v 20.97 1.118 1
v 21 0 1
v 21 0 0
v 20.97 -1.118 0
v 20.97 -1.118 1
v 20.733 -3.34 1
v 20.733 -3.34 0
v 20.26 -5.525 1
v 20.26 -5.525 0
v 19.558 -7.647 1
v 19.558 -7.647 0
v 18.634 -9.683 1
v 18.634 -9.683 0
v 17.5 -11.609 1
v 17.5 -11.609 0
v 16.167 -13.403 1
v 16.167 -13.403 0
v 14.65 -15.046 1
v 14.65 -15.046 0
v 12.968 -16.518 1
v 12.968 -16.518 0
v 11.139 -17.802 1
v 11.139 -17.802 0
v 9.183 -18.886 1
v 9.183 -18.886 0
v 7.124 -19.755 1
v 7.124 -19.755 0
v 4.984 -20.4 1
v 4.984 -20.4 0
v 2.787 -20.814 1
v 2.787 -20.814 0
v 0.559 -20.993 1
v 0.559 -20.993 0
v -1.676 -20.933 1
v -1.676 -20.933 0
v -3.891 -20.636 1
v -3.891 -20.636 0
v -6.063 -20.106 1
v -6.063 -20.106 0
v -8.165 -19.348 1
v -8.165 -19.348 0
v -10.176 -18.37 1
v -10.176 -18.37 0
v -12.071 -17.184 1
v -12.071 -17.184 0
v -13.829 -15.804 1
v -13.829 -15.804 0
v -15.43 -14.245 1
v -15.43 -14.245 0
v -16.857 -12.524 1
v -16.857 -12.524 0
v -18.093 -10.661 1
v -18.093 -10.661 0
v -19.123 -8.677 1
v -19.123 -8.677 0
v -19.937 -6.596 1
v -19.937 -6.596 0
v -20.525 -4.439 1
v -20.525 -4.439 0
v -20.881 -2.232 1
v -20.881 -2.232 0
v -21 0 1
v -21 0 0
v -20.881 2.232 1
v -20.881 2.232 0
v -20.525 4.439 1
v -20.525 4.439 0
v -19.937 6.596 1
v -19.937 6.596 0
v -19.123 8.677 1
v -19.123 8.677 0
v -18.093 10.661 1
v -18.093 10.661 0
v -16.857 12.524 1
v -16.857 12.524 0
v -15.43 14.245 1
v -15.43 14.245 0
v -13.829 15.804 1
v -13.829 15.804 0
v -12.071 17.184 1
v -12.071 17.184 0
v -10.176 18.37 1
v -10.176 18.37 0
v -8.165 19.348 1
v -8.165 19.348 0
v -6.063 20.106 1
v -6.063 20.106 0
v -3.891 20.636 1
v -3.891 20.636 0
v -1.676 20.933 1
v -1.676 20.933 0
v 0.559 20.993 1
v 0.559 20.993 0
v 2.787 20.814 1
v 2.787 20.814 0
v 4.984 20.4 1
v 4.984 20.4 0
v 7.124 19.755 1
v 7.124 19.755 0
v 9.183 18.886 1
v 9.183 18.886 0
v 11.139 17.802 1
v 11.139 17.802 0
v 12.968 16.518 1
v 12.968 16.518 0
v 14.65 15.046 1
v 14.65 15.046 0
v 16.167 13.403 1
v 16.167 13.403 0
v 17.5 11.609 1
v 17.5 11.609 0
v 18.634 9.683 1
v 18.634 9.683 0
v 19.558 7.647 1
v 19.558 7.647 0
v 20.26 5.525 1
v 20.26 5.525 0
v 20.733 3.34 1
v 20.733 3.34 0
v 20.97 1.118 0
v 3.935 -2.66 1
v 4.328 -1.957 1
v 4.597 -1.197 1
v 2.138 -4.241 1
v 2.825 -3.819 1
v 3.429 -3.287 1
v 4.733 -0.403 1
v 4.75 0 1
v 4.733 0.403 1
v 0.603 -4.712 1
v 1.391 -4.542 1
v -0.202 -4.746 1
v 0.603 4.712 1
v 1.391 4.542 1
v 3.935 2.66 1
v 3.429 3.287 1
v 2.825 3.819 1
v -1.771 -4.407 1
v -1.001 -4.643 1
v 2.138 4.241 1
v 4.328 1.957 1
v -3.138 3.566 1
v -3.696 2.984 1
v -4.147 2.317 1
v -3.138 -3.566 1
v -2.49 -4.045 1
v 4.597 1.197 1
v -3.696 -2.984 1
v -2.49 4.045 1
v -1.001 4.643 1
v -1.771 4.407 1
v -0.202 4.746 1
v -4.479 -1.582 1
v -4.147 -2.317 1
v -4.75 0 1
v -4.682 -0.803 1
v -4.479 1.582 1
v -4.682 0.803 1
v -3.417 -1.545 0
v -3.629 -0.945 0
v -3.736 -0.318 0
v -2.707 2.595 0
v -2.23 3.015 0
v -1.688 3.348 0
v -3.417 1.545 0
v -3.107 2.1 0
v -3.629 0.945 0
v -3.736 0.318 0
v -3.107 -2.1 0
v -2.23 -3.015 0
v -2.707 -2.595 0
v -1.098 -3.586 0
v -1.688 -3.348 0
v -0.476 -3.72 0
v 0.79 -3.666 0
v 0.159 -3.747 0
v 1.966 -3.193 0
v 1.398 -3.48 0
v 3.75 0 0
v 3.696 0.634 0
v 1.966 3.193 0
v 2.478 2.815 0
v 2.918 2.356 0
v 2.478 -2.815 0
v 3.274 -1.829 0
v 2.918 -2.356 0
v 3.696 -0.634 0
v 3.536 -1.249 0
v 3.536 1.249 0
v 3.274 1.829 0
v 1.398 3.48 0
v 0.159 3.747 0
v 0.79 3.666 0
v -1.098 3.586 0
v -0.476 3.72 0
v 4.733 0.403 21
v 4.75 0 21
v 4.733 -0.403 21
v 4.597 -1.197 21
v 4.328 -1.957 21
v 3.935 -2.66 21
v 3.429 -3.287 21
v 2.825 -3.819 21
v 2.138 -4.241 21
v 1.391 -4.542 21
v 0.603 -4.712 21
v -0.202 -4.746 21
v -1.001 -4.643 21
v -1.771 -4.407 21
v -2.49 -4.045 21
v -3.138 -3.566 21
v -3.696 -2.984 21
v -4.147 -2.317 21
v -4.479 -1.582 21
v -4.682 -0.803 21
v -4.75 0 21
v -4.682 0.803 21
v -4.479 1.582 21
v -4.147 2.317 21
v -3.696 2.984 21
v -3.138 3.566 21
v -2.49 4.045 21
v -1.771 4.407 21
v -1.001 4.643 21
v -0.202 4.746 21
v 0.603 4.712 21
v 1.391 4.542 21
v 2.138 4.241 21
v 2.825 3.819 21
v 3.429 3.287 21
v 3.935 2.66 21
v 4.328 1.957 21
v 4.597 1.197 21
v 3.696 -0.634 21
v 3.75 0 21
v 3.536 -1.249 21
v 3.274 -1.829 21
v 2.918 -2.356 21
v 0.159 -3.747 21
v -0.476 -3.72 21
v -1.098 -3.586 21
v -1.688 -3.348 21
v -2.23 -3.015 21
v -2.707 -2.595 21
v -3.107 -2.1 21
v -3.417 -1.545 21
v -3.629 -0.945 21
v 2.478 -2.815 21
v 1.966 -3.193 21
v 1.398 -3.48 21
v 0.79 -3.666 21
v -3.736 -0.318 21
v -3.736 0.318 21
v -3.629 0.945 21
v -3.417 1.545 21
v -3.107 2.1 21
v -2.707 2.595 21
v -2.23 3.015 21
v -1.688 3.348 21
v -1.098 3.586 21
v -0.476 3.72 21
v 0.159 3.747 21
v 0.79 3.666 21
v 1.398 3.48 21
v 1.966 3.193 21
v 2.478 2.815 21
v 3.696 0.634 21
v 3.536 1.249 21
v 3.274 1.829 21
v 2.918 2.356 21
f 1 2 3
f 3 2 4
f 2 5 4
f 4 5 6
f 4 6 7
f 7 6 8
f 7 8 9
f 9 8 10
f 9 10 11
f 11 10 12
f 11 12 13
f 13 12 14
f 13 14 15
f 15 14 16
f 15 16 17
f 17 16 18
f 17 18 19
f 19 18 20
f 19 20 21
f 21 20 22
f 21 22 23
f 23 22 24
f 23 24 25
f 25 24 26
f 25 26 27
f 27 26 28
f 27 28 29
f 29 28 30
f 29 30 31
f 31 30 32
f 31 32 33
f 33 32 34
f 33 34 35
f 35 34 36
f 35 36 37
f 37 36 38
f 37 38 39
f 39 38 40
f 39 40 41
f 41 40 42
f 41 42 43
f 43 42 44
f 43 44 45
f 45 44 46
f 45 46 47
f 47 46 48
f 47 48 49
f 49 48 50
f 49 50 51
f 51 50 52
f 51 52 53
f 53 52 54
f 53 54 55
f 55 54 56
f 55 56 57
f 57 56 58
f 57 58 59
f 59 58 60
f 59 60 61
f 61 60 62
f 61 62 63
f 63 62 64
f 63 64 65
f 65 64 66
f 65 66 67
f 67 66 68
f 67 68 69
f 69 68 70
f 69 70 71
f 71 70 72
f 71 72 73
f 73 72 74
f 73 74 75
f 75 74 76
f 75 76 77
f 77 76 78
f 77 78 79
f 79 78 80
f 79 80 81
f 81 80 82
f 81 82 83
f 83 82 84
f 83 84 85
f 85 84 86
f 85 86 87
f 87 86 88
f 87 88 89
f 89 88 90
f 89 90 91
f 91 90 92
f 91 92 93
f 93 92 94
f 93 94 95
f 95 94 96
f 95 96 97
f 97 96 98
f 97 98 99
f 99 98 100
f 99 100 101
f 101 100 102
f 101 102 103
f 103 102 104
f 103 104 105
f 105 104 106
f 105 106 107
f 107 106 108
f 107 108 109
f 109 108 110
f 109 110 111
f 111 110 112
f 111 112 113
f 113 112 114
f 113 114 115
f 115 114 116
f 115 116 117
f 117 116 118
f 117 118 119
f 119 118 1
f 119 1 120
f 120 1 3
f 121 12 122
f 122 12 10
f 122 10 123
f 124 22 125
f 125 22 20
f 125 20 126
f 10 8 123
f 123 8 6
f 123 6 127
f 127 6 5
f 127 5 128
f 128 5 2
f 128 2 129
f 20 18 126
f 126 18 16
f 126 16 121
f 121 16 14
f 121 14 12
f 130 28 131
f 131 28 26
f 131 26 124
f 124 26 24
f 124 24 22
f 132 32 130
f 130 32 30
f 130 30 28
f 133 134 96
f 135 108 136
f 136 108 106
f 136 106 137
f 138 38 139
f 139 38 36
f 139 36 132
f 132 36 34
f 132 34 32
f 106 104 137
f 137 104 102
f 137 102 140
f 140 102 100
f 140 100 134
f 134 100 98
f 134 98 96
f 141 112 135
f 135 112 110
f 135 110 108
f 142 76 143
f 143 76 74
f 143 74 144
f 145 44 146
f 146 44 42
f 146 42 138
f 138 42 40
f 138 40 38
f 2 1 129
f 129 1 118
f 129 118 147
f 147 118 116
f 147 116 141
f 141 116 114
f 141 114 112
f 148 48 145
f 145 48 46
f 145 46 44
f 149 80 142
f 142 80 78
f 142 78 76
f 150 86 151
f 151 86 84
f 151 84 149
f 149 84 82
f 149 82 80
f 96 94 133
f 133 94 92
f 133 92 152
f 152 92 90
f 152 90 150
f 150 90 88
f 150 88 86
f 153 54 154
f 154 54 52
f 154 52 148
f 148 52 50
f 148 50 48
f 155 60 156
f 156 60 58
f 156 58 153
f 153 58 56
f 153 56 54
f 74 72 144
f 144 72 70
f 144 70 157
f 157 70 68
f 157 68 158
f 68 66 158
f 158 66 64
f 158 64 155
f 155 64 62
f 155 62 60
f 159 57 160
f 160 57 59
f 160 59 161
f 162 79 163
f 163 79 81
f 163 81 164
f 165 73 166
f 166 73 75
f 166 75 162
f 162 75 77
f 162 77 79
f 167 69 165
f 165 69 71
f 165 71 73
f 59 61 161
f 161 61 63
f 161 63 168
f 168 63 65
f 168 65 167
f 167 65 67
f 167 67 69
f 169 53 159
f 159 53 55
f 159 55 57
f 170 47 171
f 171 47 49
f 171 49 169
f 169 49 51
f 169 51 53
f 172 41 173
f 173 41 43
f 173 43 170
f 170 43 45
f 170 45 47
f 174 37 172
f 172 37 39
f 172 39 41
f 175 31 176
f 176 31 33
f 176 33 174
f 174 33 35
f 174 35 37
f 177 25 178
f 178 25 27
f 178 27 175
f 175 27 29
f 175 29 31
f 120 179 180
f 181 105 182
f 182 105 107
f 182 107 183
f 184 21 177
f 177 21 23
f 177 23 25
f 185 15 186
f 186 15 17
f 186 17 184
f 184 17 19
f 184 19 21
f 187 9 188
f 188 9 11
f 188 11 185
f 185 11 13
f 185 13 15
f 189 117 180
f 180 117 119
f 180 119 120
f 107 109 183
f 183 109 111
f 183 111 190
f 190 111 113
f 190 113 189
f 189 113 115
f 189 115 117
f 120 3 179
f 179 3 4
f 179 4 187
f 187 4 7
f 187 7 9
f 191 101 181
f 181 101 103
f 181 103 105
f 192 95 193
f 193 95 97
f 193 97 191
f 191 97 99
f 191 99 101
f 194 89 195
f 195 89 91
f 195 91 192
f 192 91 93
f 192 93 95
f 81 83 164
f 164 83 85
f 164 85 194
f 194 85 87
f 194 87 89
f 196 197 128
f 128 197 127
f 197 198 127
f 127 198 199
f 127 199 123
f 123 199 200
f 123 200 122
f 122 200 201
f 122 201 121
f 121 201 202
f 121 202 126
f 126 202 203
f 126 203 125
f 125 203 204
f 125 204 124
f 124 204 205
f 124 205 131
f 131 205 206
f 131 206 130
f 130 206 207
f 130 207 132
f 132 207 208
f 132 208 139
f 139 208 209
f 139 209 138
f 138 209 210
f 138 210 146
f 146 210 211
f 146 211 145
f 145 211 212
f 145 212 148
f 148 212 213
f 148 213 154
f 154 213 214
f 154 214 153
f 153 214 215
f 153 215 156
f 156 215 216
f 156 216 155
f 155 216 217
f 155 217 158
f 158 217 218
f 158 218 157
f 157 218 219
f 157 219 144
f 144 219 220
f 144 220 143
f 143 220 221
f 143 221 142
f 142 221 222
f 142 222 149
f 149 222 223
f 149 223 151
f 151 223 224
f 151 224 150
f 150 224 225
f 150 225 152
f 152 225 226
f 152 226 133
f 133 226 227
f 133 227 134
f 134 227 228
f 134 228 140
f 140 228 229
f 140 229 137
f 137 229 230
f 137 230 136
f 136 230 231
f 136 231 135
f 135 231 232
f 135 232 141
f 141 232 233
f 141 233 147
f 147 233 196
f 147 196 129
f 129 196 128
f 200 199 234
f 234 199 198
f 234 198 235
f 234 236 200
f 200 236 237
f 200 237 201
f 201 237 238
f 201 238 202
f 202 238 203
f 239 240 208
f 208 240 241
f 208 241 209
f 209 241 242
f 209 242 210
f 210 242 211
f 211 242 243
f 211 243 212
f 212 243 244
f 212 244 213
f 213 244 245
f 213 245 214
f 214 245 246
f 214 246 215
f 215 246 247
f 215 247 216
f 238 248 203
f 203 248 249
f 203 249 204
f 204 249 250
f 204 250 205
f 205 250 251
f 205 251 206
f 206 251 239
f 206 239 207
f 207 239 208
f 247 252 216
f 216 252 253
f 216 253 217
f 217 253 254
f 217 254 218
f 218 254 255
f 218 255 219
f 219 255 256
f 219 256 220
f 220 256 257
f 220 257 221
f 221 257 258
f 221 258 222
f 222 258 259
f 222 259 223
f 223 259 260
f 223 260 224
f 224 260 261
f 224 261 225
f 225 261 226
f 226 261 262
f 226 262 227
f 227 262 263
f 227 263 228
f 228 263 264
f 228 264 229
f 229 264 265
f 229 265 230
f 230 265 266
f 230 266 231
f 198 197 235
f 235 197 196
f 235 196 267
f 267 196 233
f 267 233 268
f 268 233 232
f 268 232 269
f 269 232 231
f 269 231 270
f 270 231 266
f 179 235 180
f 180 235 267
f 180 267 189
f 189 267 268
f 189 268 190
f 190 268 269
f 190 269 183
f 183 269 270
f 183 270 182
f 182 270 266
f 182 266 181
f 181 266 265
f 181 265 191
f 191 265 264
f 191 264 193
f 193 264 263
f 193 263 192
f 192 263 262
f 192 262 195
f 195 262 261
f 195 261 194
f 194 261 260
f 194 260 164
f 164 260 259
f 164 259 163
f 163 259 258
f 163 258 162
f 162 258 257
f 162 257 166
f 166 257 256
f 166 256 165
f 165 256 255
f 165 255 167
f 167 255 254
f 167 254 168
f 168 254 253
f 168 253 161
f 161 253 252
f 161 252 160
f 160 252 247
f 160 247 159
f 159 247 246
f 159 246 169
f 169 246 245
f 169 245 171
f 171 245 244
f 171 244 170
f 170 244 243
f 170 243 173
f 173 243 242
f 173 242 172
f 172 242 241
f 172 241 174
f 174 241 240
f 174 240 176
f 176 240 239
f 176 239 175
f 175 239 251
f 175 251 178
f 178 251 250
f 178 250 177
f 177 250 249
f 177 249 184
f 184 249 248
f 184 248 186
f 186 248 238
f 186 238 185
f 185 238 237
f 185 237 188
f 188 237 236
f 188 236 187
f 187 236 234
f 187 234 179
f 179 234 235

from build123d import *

# Parameters (mm, degrees)
SKETCH1_R               = 21
BOSS_EXTRUDE1_DEPTH     = 1
SKETCH2_R               = 4.75
BOSS_EXTRUDE2_DEPTH     = 20
CUT_EXTRUDE1_DEPTH      = 37.373066959
CUT_EXTRUDE1_DEPTH_BACK = 37.373066959
SKETCH3_R               = 3.75


with BuildPart() as part:
    # Sketch1 → Boss-Extrude1 (new body)
    with BuildSketch(Plane.XY):
        Circle(SKETCH1_R)
    extrude(amount=BOSS_EXTRUDE1_DEPTH)

    # Sketch2 → Boss-Extrude2 (add)
    with BuildSketch(Plane.XY.offset(1)):
        Circle(SKETCH2_R)
    extrude(amount=BOSS_EXTRUDE2_DEPTH)

    # Sketch3 → Cut-Extrude1 (cut, two sides: drawn at the far end of the back side and taken through both)
    with BuildSketch(Plane.XY.offset(21).offset(-CUT_EXTRUDE1_DEPTH_BACK)):
        Circle(SKETCH3_R)
    extrude(amount=CUT_EXTRUDE1_DEPTH + CUT_EXTRUDE1_DEPTH_BACK, mode=Mode.SUBTRACT)


solid = part.part
